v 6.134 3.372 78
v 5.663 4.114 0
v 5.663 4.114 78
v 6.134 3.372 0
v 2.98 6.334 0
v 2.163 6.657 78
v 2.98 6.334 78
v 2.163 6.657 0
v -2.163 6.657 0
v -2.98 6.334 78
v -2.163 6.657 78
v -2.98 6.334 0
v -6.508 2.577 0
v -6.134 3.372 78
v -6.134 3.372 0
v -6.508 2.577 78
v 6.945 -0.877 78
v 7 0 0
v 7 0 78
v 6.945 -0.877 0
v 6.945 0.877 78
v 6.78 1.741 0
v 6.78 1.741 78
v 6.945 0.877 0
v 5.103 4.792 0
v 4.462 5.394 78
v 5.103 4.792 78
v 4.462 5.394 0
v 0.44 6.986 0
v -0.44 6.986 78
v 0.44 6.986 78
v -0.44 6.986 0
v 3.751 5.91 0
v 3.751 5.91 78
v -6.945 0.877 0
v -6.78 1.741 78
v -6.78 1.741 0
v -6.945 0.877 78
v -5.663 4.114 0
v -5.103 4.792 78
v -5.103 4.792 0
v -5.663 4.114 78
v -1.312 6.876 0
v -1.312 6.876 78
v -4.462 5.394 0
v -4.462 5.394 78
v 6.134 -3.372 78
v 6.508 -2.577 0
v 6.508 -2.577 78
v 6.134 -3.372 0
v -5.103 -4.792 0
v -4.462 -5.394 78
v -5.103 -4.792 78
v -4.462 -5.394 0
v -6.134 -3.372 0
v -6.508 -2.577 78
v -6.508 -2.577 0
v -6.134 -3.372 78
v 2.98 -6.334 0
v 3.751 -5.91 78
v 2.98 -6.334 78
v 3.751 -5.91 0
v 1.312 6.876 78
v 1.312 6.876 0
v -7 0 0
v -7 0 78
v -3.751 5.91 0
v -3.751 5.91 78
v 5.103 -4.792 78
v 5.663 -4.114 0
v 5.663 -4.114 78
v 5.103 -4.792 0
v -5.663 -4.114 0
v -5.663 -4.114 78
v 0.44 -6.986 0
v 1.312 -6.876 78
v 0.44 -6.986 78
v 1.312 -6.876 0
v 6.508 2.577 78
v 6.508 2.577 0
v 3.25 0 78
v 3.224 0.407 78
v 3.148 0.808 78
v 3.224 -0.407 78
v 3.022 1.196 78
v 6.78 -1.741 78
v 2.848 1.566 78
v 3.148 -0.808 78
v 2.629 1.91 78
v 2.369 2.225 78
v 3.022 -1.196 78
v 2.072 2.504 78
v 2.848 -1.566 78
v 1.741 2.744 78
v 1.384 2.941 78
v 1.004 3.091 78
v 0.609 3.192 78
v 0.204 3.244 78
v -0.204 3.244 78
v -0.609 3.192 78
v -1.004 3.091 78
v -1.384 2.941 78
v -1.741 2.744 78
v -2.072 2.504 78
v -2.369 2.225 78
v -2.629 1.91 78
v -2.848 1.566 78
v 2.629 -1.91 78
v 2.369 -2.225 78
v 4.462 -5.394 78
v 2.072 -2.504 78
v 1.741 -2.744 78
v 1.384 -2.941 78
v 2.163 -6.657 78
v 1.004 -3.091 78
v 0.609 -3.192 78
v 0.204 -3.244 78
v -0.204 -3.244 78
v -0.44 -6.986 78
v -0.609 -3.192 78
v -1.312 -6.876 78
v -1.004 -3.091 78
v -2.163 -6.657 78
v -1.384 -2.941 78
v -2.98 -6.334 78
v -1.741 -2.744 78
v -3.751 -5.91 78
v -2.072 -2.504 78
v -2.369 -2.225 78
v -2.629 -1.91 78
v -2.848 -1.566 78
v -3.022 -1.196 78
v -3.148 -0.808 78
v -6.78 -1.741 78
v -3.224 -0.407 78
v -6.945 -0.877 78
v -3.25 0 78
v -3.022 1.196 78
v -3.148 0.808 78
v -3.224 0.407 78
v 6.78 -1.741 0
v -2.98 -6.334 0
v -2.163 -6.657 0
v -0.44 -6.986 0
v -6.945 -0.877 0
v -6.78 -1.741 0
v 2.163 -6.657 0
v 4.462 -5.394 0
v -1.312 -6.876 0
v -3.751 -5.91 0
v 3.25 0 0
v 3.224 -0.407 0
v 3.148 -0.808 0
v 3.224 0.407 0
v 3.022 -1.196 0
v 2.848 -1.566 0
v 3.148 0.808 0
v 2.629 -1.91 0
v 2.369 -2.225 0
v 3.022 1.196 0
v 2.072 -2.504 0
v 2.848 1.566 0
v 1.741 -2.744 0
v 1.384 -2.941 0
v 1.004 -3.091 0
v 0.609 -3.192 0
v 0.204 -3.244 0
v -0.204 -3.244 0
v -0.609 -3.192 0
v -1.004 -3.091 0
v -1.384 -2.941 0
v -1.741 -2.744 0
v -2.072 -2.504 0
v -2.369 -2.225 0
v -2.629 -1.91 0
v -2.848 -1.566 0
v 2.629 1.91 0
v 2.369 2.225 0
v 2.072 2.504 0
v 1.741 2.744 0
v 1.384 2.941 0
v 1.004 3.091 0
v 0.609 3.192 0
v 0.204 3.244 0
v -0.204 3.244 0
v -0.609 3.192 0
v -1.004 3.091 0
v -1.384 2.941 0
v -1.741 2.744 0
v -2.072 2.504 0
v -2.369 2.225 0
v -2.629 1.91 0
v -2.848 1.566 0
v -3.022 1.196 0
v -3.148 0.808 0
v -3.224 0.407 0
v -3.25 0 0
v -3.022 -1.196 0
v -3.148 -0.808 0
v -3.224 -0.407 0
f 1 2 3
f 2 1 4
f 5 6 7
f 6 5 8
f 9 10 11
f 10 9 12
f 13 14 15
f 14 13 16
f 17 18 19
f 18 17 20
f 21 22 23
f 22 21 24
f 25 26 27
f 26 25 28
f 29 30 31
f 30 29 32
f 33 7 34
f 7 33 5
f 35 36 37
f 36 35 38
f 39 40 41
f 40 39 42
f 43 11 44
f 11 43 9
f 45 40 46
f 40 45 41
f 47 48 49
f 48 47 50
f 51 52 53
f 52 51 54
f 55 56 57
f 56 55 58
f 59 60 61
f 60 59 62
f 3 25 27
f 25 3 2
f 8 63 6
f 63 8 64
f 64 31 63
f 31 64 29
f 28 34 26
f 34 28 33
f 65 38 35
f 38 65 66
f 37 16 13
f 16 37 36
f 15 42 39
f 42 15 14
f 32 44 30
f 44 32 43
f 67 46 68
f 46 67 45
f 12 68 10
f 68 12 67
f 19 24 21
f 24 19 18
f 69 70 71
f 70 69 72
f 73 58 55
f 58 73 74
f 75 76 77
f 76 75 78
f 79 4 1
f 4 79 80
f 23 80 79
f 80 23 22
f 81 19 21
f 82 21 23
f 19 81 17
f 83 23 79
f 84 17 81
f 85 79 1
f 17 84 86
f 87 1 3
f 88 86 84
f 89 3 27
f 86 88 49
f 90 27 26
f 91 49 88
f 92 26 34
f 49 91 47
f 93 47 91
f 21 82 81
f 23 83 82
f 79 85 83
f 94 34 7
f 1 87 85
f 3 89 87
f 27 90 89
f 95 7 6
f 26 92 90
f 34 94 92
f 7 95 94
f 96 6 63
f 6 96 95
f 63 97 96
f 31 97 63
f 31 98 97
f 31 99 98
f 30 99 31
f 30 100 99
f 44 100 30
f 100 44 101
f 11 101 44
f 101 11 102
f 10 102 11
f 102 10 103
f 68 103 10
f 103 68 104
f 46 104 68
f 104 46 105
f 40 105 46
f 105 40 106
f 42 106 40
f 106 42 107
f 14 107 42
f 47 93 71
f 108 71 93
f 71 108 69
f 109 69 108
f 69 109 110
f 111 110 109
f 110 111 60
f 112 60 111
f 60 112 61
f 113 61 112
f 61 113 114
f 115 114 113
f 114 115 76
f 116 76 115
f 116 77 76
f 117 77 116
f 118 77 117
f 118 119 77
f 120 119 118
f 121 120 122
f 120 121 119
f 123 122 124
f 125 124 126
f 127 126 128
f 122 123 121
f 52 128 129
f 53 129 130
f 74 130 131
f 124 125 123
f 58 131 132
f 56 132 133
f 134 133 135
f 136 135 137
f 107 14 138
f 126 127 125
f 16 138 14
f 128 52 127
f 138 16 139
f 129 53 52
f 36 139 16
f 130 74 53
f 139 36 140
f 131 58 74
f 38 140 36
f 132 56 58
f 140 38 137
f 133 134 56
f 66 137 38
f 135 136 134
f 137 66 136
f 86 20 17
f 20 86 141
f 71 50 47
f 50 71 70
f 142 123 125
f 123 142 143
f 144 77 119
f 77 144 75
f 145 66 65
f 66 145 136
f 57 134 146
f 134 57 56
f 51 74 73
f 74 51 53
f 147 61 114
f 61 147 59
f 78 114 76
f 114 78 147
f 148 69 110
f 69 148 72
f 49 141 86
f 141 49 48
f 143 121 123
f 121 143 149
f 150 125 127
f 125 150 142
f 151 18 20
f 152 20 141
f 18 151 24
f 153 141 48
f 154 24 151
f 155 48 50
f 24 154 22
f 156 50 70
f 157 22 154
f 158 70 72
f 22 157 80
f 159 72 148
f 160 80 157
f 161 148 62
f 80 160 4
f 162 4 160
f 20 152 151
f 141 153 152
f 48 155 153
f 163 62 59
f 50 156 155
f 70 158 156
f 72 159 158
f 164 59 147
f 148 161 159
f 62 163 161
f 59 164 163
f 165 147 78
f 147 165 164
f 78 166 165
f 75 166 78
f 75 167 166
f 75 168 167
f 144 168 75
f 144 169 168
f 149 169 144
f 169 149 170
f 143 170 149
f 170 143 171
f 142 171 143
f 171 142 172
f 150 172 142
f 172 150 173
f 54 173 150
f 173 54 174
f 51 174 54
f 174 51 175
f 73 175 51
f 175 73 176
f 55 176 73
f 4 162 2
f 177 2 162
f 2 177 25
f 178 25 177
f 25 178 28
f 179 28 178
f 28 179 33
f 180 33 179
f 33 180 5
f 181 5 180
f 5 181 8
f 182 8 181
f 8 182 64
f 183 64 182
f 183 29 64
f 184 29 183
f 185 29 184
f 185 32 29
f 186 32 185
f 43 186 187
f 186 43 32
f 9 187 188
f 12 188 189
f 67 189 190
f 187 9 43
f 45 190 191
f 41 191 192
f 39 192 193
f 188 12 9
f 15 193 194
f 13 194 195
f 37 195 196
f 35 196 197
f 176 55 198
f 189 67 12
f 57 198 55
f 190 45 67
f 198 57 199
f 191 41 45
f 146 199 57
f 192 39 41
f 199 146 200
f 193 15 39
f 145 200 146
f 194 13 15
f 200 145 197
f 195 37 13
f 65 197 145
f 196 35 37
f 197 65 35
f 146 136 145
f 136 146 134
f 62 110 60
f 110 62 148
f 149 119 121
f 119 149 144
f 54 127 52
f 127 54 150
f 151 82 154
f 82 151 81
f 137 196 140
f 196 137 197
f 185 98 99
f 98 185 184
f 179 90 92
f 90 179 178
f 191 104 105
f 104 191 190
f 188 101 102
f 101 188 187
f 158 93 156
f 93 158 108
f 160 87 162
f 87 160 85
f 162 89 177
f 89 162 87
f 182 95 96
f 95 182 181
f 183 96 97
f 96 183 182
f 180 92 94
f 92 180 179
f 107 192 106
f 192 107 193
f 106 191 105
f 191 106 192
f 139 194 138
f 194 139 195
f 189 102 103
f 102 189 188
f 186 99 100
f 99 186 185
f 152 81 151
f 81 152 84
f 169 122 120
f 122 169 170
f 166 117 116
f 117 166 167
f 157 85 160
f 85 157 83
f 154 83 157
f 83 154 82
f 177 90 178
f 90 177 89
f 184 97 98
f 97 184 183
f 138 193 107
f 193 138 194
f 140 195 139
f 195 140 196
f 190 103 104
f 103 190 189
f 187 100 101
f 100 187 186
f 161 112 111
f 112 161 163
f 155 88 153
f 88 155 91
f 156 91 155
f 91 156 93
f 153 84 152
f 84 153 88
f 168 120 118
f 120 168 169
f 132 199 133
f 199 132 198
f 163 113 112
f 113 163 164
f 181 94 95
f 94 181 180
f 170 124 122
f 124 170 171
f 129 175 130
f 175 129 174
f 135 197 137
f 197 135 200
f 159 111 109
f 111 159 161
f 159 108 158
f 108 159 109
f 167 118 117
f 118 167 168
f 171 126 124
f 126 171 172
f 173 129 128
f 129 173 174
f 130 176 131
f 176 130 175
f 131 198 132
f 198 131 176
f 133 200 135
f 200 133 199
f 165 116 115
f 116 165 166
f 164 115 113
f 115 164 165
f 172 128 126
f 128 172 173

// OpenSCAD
$fn = 50;


difference() {
	union() {
		cylinder(h = 78, r = 7.0000000000);
	}
	union() {
		translate(v = [0.0000000000, 0.0000000000, -100.0000000000]) {
			cylinder(h = 200, r = 3.2500000000);
		}
	}
}
